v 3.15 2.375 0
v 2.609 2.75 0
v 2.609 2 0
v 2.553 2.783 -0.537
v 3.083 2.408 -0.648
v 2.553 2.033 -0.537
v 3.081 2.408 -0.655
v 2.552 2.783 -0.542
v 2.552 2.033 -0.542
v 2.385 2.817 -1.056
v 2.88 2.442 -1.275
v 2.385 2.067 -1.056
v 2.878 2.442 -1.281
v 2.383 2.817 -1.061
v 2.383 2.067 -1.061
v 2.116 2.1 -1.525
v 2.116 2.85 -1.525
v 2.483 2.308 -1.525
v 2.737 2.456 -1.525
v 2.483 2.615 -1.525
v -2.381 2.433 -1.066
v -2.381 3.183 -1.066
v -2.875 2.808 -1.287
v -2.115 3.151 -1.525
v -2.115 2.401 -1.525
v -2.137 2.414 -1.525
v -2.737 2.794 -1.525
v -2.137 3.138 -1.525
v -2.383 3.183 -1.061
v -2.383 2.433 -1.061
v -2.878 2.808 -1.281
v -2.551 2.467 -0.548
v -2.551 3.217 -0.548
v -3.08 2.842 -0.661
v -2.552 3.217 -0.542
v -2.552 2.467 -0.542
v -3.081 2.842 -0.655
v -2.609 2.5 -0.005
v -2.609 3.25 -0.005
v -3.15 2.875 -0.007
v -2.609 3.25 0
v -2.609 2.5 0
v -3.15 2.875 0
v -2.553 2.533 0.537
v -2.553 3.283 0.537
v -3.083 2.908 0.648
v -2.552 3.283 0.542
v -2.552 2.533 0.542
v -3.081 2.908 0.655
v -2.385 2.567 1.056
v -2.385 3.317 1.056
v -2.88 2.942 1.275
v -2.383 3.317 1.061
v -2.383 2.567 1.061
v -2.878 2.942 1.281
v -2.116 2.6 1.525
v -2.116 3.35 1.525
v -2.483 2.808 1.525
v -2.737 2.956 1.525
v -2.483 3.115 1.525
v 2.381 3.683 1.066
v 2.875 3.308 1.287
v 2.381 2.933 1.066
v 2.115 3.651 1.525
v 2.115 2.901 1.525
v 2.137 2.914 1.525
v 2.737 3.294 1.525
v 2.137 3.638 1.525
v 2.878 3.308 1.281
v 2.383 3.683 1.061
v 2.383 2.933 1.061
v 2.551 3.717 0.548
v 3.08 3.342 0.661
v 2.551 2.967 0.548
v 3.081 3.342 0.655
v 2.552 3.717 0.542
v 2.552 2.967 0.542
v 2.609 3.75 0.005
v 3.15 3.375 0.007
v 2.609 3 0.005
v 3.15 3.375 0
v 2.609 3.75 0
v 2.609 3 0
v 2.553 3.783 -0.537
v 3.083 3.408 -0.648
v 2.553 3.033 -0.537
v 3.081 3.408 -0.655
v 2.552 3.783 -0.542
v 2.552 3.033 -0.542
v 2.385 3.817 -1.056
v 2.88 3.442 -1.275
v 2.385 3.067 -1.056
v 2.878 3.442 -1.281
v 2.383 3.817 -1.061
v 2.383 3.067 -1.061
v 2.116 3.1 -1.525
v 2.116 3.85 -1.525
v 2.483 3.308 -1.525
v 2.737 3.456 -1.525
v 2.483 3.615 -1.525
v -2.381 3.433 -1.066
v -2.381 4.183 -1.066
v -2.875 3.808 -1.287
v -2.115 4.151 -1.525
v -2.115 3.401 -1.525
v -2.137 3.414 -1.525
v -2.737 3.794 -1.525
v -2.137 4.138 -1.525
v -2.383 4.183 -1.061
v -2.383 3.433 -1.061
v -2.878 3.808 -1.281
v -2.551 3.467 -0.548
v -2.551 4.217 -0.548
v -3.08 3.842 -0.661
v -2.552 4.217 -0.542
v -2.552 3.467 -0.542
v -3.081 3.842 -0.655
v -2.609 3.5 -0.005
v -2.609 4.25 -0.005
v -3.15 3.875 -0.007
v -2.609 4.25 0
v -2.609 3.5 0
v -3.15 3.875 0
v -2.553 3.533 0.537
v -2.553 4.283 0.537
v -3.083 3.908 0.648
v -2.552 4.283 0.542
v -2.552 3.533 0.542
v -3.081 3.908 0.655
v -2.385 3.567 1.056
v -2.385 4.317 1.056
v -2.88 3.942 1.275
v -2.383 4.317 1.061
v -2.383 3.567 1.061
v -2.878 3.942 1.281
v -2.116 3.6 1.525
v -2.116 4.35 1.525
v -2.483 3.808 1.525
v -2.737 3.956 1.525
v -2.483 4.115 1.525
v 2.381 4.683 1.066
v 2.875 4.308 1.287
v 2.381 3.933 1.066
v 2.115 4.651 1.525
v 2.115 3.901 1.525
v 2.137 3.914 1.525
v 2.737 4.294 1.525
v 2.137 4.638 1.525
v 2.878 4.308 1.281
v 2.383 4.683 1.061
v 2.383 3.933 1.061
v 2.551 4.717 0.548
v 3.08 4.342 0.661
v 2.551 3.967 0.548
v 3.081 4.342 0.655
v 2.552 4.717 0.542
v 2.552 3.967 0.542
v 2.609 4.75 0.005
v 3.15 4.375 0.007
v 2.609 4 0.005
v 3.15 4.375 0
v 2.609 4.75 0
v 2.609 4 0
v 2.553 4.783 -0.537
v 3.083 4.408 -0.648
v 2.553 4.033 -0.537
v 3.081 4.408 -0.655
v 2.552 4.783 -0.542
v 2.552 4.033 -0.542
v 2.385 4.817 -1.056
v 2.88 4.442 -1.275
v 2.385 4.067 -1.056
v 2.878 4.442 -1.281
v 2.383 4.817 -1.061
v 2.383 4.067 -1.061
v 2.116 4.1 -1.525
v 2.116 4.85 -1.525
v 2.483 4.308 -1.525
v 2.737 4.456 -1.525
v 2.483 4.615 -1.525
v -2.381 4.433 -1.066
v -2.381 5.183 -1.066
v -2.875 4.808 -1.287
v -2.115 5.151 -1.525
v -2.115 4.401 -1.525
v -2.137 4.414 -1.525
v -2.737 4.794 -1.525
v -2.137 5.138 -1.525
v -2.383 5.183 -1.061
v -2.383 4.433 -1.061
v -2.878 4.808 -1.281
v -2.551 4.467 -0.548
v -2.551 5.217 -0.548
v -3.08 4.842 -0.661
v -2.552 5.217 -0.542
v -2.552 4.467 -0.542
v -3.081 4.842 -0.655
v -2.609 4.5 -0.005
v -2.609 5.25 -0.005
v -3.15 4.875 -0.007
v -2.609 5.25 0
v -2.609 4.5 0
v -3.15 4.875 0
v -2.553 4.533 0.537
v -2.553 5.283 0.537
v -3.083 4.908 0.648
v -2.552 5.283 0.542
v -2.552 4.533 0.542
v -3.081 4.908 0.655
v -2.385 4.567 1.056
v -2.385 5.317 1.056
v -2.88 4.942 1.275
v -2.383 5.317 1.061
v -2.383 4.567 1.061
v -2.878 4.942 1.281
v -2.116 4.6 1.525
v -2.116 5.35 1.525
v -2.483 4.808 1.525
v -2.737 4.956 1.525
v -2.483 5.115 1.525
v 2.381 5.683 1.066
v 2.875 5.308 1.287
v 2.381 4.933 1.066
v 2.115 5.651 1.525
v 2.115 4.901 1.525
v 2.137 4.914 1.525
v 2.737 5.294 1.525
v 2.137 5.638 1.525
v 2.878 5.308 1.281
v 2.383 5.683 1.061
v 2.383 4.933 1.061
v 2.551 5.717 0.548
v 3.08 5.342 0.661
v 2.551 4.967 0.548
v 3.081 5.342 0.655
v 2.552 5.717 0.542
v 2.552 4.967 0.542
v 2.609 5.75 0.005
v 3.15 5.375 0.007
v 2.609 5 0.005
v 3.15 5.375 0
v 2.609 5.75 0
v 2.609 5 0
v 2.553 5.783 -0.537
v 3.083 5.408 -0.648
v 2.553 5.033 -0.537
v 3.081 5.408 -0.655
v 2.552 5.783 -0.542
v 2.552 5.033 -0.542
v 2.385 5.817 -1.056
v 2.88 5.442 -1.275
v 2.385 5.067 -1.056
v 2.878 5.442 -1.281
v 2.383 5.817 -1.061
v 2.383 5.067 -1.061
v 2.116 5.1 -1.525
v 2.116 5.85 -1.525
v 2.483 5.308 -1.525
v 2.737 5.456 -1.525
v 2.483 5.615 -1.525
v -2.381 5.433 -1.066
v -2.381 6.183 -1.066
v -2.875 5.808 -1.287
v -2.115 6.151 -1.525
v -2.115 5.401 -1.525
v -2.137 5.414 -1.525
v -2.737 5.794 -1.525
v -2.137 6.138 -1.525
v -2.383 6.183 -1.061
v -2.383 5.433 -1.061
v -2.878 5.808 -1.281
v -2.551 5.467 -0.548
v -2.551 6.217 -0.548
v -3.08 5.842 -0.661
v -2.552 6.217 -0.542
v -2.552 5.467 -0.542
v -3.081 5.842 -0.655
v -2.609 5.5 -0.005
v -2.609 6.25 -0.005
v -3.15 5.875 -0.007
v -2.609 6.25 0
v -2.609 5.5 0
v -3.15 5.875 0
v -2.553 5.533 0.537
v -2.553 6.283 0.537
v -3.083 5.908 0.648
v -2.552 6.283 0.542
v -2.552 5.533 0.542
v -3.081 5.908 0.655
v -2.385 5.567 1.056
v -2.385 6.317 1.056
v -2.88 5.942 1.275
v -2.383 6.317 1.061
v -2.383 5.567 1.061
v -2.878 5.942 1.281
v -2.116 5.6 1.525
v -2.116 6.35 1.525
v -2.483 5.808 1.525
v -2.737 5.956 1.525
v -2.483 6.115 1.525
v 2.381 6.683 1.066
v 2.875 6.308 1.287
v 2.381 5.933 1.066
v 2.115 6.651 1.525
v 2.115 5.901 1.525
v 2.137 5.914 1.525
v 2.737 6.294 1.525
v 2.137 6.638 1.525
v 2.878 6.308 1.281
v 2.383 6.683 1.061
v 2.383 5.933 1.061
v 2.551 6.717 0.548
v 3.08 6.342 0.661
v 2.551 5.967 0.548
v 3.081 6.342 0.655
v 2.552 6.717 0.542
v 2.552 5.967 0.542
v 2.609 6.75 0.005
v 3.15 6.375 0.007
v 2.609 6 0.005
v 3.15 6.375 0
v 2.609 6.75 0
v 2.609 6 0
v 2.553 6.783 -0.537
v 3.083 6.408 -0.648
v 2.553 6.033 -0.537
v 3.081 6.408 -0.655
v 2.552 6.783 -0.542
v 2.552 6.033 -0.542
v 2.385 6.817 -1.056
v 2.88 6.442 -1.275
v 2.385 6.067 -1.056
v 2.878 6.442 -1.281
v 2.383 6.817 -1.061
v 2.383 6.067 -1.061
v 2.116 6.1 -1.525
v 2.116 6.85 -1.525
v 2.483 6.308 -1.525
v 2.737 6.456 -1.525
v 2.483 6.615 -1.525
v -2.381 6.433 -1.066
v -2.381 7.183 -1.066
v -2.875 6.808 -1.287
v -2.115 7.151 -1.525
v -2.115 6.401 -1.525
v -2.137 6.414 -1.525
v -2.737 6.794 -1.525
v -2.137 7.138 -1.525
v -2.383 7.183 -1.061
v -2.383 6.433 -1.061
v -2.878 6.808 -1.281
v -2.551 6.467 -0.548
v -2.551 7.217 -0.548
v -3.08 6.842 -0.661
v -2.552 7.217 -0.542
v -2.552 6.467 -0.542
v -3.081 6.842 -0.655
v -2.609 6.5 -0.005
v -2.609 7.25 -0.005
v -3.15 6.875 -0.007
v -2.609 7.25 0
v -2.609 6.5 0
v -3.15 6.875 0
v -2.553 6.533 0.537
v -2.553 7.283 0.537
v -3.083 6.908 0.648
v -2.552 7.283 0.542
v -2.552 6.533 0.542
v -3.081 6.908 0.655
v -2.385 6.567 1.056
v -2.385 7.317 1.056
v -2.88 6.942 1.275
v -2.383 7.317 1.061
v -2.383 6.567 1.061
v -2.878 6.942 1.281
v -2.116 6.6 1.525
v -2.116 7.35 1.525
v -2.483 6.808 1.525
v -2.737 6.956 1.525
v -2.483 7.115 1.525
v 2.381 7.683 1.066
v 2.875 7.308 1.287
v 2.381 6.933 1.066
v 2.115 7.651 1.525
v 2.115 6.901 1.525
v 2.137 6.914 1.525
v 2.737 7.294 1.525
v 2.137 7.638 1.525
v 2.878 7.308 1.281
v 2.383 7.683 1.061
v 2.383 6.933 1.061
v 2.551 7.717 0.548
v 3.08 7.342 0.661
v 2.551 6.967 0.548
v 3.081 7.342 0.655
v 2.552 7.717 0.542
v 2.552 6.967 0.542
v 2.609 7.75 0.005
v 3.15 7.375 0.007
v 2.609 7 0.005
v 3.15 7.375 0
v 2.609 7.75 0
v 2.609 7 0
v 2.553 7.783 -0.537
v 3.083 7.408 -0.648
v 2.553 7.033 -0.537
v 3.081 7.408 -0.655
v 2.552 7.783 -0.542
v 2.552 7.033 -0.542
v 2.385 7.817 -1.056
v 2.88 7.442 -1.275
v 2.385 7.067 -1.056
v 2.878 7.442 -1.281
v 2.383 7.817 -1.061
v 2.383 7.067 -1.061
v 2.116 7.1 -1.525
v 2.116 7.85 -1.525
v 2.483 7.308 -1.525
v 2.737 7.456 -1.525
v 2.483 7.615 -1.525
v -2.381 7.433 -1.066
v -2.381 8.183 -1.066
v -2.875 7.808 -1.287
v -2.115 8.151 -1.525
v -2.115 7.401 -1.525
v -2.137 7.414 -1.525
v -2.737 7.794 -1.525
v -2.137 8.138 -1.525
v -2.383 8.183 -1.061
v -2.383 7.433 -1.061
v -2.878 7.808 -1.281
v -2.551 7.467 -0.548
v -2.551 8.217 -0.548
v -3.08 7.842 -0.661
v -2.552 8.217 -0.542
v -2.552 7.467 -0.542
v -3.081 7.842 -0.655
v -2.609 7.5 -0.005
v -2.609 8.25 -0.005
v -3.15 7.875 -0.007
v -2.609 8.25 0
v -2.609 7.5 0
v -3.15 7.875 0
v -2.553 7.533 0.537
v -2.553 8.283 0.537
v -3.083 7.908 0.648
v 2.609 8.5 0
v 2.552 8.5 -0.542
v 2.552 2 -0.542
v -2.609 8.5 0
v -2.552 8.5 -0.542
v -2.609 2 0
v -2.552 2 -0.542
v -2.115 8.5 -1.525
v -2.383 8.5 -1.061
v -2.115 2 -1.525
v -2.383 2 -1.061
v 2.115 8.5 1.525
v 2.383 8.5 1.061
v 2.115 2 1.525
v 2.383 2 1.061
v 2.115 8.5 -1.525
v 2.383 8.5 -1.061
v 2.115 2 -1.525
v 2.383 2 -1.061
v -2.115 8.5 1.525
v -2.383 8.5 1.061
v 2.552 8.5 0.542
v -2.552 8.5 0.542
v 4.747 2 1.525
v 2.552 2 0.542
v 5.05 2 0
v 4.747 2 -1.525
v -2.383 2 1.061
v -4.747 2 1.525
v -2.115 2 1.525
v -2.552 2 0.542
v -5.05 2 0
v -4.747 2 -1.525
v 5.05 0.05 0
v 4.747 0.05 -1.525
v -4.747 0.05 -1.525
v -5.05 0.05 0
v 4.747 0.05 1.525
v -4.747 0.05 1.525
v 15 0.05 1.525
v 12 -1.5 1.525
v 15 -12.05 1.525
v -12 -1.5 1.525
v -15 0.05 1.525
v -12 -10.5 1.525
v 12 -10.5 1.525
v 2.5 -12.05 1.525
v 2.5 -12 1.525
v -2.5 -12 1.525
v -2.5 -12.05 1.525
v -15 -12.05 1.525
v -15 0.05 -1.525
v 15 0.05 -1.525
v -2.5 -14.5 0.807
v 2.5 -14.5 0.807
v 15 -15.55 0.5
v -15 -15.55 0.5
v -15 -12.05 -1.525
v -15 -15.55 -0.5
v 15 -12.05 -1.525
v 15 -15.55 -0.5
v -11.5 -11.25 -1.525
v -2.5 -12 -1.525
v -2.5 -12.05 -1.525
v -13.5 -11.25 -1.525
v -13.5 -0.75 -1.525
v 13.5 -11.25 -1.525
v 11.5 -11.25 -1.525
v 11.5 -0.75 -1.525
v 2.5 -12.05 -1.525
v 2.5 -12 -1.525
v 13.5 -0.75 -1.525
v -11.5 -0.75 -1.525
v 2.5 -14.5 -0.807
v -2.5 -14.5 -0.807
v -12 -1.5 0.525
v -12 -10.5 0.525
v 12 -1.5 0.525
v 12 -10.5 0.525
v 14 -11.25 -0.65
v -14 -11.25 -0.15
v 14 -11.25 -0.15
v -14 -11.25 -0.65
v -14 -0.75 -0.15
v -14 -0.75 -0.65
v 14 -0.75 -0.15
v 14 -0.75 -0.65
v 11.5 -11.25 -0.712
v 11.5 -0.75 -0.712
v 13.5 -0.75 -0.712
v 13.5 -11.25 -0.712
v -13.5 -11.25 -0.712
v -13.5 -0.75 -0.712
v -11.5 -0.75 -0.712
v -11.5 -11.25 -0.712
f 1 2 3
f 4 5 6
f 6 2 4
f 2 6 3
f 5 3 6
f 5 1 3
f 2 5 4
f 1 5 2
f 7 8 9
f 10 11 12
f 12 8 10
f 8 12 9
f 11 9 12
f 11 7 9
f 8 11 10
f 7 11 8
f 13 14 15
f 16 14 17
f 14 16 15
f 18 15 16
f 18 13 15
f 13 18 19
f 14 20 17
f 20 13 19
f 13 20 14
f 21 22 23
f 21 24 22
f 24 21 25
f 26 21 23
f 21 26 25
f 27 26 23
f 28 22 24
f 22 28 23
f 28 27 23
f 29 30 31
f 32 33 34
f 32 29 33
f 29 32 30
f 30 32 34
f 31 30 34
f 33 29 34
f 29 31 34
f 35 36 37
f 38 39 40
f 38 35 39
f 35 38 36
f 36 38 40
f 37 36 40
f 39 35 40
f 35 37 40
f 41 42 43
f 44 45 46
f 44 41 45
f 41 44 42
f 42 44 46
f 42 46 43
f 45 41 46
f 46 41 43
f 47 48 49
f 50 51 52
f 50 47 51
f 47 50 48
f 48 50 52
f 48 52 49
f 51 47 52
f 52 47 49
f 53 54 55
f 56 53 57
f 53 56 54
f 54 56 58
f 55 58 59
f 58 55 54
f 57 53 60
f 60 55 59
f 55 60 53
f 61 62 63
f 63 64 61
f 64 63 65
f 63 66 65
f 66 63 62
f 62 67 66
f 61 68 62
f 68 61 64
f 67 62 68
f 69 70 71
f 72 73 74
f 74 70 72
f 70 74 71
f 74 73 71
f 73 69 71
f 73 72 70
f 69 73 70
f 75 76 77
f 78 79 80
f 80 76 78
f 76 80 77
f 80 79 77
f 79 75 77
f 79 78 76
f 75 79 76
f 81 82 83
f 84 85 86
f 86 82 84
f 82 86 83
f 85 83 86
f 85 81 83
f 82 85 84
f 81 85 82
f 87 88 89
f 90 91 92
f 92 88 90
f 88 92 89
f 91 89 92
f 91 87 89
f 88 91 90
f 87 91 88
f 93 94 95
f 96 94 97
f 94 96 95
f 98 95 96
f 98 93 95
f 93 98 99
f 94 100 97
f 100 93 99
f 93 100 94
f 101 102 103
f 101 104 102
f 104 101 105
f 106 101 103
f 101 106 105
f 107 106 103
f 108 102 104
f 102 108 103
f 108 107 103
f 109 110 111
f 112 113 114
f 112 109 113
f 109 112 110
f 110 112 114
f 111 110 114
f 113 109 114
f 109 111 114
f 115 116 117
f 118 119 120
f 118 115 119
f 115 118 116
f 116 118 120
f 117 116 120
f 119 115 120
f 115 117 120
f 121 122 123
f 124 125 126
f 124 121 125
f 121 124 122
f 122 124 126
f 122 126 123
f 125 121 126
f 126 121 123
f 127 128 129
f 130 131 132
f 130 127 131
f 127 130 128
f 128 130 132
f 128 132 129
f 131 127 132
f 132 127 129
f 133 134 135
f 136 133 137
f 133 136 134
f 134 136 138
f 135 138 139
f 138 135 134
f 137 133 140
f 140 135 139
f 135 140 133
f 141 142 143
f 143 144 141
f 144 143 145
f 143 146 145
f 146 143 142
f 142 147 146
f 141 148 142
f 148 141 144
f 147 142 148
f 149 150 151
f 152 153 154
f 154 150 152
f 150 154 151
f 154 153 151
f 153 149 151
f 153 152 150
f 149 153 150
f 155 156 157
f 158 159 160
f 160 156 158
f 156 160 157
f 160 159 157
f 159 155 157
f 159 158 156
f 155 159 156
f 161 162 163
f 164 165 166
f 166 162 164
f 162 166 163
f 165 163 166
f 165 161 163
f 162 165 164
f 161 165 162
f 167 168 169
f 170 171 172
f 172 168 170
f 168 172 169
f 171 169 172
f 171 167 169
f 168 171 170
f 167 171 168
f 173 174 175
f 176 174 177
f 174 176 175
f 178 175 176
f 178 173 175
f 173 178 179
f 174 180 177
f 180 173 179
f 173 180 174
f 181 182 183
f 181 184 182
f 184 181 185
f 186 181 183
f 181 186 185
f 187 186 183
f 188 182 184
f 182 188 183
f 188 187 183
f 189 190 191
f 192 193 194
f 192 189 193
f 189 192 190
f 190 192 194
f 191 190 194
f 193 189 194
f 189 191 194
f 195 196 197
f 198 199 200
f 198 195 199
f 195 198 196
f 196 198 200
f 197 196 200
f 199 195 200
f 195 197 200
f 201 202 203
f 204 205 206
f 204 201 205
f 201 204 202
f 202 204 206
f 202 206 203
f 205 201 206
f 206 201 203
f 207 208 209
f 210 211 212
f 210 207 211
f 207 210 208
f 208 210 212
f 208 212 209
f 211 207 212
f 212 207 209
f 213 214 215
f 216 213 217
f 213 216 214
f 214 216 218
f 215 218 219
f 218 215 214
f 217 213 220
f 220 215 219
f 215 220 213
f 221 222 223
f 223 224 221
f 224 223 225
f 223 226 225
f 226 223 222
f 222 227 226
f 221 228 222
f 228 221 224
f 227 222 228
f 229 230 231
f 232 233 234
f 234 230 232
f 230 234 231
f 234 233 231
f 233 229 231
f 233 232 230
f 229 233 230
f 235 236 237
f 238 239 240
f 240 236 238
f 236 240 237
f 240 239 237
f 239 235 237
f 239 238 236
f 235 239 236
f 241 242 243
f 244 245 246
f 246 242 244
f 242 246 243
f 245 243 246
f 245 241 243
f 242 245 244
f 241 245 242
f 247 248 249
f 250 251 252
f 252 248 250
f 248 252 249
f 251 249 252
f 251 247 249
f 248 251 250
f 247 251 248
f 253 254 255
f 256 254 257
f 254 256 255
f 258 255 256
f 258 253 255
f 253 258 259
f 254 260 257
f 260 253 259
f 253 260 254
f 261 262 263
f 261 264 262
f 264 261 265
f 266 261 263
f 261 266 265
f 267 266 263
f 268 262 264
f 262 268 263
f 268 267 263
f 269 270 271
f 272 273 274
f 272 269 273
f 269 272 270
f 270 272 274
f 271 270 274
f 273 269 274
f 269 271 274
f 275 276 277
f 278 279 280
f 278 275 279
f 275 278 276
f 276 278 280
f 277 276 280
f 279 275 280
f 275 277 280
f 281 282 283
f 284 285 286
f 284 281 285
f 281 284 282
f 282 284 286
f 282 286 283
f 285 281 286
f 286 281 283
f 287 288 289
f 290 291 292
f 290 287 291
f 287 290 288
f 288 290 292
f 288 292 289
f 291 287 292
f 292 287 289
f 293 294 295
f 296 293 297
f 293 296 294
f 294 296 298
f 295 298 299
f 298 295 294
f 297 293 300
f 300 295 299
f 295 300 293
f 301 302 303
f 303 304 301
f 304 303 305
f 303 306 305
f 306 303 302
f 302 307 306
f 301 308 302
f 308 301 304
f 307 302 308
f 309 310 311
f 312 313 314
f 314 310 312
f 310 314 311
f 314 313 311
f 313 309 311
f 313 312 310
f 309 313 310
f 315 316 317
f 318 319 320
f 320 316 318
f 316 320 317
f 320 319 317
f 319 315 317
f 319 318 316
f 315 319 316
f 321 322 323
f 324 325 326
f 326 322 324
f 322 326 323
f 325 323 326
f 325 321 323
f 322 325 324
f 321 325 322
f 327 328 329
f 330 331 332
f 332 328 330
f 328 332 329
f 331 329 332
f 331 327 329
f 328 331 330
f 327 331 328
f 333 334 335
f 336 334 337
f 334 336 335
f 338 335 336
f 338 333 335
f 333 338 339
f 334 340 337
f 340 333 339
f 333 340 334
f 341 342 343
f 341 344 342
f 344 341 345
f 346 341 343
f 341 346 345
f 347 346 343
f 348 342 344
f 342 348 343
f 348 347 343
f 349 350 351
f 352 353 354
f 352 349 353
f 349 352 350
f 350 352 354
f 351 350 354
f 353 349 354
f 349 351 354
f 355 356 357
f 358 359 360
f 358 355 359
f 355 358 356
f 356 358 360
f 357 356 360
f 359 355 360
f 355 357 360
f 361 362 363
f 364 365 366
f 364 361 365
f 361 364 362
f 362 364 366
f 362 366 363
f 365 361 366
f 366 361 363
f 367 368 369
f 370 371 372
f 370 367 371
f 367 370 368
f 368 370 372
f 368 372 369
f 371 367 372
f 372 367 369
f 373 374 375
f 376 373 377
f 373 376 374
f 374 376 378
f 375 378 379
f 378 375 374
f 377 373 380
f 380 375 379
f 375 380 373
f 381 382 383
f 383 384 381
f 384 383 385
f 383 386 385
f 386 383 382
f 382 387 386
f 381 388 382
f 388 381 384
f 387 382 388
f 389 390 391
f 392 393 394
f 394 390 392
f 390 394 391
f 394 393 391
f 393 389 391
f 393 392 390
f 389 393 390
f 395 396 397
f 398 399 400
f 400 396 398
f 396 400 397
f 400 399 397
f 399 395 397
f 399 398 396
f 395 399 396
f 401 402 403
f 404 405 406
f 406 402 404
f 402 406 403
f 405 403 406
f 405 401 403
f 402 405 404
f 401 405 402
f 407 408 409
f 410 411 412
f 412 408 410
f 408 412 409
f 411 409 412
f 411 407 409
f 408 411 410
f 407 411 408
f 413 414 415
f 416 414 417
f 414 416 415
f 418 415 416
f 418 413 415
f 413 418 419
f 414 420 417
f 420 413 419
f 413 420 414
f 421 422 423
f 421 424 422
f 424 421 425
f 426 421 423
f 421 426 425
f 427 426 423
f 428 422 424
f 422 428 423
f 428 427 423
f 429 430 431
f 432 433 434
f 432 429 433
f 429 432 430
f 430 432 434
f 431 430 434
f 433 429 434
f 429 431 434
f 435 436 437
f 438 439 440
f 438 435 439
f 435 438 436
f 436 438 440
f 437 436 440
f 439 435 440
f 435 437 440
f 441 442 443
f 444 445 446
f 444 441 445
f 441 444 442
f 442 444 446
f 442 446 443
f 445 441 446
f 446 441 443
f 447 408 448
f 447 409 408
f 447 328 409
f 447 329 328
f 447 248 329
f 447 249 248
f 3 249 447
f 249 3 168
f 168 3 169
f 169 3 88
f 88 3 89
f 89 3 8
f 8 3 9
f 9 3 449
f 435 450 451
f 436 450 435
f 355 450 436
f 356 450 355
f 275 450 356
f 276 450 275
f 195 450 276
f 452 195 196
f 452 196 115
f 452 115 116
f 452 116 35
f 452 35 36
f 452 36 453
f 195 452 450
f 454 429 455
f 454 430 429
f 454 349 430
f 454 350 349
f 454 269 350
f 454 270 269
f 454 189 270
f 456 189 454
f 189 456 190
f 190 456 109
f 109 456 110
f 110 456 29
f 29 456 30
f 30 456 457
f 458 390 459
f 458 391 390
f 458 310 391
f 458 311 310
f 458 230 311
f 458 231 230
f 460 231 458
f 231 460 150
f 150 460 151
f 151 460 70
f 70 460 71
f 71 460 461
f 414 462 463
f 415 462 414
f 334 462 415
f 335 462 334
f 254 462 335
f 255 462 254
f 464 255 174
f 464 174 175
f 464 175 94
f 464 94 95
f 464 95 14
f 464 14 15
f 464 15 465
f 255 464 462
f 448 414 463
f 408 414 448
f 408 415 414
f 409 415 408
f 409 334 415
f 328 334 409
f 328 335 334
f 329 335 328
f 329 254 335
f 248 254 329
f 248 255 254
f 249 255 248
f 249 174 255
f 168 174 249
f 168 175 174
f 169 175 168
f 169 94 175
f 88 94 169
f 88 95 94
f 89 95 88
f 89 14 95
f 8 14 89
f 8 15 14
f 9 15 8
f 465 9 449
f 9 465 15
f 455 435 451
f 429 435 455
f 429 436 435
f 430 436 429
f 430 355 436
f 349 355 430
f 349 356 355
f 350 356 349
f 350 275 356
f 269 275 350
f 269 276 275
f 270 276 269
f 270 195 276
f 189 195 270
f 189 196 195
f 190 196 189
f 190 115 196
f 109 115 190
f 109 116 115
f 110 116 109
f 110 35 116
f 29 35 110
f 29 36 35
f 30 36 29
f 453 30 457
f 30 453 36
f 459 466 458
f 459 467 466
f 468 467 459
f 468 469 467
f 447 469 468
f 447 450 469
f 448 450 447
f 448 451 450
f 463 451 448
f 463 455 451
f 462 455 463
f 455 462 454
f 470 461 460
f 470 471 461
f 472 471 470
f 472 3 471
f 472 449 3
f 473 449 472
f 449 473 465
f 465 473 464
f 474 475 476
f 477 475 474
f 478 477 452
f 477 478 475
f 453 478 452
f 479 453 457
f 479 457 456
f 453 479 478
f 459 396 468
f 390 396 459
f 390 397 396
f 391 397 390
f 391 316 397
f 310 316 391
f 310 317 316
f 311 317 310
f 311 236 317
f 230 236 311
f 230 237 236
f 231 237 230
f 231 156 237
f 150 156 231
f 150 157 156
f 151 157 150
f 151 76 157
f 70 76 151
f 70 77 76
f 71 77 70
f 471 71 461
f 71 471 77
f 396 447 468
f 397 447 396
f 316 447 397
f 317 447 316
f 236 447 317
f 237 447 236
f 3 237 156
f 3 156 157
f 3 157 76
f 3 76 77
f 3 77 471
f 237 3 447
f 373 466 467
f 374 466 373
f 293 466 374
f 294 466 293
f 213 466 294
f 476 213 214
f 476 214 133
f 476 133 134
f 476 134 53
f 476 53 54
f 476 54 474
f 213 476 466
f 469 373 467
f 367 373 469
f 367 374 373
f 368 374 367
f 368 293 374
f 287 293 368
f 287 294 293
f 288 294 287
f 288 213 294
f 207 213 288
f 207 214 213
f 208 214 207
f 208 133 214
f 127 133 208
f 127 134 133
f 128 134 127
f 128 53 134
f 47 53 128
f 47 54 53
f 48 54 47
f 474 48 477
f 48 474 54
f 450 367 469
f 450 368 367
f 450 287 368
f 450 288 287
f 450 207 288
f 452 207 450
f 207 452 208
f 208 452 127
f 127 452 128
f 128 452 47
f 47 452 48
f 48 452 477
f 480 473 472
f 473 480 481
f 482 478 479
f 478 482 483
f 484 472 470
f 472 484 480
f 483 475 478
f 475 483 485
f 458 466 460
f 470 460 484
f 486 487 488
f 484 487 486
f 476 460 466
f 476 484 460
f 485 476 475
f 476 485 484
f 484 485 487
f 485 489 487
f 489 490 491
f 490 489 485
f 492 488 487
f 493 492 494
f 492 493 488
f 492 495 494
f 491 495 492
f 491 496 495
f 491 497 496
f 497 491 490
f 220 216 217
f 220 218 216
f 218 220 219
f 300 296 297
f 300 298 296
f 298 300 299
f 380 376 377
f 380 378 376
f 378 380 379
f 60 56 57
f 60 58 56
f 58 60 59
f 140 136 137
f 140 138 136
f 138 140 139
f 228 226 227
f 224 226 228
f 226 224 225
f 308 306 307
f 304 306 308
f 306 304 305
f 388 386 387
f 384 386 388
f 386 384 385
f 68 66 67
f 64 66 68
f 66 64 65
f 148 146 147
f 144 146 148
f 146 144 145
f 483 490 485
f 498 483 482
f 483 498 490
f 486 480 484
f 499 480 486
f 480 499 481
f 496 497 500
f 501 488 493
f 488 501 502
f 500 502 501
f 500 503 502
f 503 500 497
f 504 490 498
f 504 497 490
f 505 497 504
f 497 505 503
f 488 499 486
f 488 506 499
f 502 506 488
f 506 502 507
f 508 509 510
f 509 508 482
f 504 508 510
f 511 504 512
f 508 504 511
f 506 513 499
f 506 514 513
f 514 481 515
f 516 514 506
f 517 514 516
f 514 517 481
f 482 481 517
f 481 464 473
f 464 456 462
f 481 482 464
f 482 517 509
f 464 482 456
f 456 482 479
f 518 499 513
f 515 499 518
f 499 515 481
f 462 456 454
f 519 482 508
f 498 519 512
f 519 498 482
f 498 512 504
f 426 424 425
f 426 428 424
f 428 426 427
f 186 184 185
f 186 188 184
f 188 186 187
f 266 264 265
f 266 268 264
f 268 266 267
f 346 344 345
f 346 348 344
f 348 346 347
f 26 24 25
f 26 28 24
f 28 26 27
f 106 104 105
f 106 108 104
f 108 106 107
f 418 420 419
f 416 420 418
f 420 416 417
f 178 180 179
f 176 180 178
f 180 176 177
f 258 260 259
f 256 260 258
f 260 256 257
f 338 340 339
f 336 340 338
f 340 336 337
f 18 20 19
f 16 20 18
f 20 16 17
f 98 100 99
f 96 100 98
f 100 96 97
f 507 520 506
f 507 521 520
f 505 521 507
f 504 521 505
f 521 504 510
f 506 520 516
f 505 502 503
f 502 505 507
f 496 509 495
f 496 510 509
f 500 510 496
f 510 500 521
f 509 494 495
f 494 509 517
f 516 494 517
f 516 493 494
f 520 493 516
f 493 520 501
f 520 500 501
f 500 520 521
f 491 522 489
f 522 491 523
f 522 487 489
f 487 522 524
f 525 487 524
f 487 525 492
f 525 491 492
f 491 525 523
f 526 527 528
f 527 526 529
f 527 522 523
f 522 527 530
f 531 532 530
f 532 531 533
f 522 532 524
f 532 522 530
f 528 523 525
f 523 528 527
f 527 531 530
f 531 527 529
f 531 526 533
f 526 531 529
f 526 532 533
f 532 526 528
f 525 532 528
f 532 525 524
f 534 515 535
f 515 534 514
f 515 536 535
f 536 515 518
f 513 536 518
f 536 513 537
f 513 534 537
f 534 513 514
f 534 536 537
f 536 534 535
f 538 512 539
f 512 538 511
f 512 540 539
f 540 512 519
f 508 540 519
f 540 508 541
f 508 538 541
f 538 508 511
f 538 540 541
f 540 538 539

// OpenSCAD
use <lib/ISOThread.scad>
// Hand Twistable Loop

// Typical camera mounts are 3/4 inch or 1/4 inch
screwDia=6.35-0.25; // 6.35mm == 1/4 inch
screwLen=6;
screwWasherThickness=2;
screwWasherDiameter=screwDia+4;

flagLabel=10;
flagHead=3.5;
flagWidth=30;

loopCutHeight=2.5;
loopCutWidth=loopCutHeight*2;

layerHeight=0.3;

rotate([-90,0,0])
intersection()
{
    screwFlatCut=screwDia/2;
    union()
    {
         // Screw
        union()
        {
            translate([0,0,screwWasherThickness])
            {
                thread_out(screwDia,screwLen+0.5);
                thread_out_centre(screwDia+0.2,screwLen+0.5);
            }
            cylinder(d=screwWasherDiameter, h=screwWasherThickness);
            translate([0,0,screwWasherThickness+1/2])
                %cube([10,10,1], center=true);
        }
        difference()
        {
            // Head
            hull()
            {
                cube([flagWidth,screwFlatCut,0.1], center=true);
                translate([0,0,-(flagLabel+2)])
                    cube([flagWidth,screwFlatCut,0.1], center=true);
                translate([0,0,-(flagLabel+2)-flagHead])
                    cube([flagWidth,1,0.1], center=true);
            }
            // Loop
            translate([0,0,-(flagLabel+2)-flagHead+loopCutHeight/2+1])
                cube([loopCutWidth,screwFlatCut+1,loopCutHeight], center=true);
            // Paper Slot
            paperWindowW=flagWidth-6;
            paperThickness=0.8;
            translate([0,-1,-(flagLabel+2)/2])
                cube([paperWindowW,screwFlatCut,flagLabel-1], center=true);
            translate([0,0,-(flagLabel+2)/2])
                hull()
                {
                    cube([flagWidth-6,screwFlatCut-2,flagLabel-1], center=true);
                    translate([0,paperThickness/2,0])
                        cube([flagWidth-2,0.5,flagLabel+0.5], center=true);
                }
            // Paper Insert Slit
            translate([flagWidth/2-2.5,screwFlatCut/2,-(flagLabel-2)/2-2])
                cube([2,screwFlatCut/2+0.1,(flagLabel+0.5)], center=true);
            translate([-flagWidth/2+2.5,screwFlatCut/2,-(flagLabel-2)/2-2])
                cube([2,screwFlatCut/2+0.1,(flagLabel+0.5)], center=true);
            // Simulated paper model
            if(0)
            translate([0,screwFlatCut/2-1.5,-(flagLabel-2)/2-2])
                %cube([flagWidth-2, 0.1, flagLabel-0.1], center=true);
        }

        // Brim for more reliable printing if needed
        if (0)
        hull()
        {
            translate([0,screwFlatCut/2,screwLen+screwWasherThickness])
                cube([screwDia-2,layerHeight*2+0.1,0.01], center=true);
            translate([0,screwFlatCut/2,screwLen+10])
                cube([screwDia*2,layerHeight*2+0.1,0.01], center=true);
        }
        if (0)
        hull()
        {
            translate([0,screwFlatCut/2,0])
                cube([1,layerHeight*2+0.1,0.01], center=true);
            translate([0,screwFlatCut/2,-10])
                cube([3,layerHeight*2+0.1,0.01], center=true);
        }
    }

    // Cut for ease of printing
    cube([screwDia*2+flagWidth, screwFlatCut, screwLen*3+10+(flagLabel+2)+flagHead], center=true);
}
